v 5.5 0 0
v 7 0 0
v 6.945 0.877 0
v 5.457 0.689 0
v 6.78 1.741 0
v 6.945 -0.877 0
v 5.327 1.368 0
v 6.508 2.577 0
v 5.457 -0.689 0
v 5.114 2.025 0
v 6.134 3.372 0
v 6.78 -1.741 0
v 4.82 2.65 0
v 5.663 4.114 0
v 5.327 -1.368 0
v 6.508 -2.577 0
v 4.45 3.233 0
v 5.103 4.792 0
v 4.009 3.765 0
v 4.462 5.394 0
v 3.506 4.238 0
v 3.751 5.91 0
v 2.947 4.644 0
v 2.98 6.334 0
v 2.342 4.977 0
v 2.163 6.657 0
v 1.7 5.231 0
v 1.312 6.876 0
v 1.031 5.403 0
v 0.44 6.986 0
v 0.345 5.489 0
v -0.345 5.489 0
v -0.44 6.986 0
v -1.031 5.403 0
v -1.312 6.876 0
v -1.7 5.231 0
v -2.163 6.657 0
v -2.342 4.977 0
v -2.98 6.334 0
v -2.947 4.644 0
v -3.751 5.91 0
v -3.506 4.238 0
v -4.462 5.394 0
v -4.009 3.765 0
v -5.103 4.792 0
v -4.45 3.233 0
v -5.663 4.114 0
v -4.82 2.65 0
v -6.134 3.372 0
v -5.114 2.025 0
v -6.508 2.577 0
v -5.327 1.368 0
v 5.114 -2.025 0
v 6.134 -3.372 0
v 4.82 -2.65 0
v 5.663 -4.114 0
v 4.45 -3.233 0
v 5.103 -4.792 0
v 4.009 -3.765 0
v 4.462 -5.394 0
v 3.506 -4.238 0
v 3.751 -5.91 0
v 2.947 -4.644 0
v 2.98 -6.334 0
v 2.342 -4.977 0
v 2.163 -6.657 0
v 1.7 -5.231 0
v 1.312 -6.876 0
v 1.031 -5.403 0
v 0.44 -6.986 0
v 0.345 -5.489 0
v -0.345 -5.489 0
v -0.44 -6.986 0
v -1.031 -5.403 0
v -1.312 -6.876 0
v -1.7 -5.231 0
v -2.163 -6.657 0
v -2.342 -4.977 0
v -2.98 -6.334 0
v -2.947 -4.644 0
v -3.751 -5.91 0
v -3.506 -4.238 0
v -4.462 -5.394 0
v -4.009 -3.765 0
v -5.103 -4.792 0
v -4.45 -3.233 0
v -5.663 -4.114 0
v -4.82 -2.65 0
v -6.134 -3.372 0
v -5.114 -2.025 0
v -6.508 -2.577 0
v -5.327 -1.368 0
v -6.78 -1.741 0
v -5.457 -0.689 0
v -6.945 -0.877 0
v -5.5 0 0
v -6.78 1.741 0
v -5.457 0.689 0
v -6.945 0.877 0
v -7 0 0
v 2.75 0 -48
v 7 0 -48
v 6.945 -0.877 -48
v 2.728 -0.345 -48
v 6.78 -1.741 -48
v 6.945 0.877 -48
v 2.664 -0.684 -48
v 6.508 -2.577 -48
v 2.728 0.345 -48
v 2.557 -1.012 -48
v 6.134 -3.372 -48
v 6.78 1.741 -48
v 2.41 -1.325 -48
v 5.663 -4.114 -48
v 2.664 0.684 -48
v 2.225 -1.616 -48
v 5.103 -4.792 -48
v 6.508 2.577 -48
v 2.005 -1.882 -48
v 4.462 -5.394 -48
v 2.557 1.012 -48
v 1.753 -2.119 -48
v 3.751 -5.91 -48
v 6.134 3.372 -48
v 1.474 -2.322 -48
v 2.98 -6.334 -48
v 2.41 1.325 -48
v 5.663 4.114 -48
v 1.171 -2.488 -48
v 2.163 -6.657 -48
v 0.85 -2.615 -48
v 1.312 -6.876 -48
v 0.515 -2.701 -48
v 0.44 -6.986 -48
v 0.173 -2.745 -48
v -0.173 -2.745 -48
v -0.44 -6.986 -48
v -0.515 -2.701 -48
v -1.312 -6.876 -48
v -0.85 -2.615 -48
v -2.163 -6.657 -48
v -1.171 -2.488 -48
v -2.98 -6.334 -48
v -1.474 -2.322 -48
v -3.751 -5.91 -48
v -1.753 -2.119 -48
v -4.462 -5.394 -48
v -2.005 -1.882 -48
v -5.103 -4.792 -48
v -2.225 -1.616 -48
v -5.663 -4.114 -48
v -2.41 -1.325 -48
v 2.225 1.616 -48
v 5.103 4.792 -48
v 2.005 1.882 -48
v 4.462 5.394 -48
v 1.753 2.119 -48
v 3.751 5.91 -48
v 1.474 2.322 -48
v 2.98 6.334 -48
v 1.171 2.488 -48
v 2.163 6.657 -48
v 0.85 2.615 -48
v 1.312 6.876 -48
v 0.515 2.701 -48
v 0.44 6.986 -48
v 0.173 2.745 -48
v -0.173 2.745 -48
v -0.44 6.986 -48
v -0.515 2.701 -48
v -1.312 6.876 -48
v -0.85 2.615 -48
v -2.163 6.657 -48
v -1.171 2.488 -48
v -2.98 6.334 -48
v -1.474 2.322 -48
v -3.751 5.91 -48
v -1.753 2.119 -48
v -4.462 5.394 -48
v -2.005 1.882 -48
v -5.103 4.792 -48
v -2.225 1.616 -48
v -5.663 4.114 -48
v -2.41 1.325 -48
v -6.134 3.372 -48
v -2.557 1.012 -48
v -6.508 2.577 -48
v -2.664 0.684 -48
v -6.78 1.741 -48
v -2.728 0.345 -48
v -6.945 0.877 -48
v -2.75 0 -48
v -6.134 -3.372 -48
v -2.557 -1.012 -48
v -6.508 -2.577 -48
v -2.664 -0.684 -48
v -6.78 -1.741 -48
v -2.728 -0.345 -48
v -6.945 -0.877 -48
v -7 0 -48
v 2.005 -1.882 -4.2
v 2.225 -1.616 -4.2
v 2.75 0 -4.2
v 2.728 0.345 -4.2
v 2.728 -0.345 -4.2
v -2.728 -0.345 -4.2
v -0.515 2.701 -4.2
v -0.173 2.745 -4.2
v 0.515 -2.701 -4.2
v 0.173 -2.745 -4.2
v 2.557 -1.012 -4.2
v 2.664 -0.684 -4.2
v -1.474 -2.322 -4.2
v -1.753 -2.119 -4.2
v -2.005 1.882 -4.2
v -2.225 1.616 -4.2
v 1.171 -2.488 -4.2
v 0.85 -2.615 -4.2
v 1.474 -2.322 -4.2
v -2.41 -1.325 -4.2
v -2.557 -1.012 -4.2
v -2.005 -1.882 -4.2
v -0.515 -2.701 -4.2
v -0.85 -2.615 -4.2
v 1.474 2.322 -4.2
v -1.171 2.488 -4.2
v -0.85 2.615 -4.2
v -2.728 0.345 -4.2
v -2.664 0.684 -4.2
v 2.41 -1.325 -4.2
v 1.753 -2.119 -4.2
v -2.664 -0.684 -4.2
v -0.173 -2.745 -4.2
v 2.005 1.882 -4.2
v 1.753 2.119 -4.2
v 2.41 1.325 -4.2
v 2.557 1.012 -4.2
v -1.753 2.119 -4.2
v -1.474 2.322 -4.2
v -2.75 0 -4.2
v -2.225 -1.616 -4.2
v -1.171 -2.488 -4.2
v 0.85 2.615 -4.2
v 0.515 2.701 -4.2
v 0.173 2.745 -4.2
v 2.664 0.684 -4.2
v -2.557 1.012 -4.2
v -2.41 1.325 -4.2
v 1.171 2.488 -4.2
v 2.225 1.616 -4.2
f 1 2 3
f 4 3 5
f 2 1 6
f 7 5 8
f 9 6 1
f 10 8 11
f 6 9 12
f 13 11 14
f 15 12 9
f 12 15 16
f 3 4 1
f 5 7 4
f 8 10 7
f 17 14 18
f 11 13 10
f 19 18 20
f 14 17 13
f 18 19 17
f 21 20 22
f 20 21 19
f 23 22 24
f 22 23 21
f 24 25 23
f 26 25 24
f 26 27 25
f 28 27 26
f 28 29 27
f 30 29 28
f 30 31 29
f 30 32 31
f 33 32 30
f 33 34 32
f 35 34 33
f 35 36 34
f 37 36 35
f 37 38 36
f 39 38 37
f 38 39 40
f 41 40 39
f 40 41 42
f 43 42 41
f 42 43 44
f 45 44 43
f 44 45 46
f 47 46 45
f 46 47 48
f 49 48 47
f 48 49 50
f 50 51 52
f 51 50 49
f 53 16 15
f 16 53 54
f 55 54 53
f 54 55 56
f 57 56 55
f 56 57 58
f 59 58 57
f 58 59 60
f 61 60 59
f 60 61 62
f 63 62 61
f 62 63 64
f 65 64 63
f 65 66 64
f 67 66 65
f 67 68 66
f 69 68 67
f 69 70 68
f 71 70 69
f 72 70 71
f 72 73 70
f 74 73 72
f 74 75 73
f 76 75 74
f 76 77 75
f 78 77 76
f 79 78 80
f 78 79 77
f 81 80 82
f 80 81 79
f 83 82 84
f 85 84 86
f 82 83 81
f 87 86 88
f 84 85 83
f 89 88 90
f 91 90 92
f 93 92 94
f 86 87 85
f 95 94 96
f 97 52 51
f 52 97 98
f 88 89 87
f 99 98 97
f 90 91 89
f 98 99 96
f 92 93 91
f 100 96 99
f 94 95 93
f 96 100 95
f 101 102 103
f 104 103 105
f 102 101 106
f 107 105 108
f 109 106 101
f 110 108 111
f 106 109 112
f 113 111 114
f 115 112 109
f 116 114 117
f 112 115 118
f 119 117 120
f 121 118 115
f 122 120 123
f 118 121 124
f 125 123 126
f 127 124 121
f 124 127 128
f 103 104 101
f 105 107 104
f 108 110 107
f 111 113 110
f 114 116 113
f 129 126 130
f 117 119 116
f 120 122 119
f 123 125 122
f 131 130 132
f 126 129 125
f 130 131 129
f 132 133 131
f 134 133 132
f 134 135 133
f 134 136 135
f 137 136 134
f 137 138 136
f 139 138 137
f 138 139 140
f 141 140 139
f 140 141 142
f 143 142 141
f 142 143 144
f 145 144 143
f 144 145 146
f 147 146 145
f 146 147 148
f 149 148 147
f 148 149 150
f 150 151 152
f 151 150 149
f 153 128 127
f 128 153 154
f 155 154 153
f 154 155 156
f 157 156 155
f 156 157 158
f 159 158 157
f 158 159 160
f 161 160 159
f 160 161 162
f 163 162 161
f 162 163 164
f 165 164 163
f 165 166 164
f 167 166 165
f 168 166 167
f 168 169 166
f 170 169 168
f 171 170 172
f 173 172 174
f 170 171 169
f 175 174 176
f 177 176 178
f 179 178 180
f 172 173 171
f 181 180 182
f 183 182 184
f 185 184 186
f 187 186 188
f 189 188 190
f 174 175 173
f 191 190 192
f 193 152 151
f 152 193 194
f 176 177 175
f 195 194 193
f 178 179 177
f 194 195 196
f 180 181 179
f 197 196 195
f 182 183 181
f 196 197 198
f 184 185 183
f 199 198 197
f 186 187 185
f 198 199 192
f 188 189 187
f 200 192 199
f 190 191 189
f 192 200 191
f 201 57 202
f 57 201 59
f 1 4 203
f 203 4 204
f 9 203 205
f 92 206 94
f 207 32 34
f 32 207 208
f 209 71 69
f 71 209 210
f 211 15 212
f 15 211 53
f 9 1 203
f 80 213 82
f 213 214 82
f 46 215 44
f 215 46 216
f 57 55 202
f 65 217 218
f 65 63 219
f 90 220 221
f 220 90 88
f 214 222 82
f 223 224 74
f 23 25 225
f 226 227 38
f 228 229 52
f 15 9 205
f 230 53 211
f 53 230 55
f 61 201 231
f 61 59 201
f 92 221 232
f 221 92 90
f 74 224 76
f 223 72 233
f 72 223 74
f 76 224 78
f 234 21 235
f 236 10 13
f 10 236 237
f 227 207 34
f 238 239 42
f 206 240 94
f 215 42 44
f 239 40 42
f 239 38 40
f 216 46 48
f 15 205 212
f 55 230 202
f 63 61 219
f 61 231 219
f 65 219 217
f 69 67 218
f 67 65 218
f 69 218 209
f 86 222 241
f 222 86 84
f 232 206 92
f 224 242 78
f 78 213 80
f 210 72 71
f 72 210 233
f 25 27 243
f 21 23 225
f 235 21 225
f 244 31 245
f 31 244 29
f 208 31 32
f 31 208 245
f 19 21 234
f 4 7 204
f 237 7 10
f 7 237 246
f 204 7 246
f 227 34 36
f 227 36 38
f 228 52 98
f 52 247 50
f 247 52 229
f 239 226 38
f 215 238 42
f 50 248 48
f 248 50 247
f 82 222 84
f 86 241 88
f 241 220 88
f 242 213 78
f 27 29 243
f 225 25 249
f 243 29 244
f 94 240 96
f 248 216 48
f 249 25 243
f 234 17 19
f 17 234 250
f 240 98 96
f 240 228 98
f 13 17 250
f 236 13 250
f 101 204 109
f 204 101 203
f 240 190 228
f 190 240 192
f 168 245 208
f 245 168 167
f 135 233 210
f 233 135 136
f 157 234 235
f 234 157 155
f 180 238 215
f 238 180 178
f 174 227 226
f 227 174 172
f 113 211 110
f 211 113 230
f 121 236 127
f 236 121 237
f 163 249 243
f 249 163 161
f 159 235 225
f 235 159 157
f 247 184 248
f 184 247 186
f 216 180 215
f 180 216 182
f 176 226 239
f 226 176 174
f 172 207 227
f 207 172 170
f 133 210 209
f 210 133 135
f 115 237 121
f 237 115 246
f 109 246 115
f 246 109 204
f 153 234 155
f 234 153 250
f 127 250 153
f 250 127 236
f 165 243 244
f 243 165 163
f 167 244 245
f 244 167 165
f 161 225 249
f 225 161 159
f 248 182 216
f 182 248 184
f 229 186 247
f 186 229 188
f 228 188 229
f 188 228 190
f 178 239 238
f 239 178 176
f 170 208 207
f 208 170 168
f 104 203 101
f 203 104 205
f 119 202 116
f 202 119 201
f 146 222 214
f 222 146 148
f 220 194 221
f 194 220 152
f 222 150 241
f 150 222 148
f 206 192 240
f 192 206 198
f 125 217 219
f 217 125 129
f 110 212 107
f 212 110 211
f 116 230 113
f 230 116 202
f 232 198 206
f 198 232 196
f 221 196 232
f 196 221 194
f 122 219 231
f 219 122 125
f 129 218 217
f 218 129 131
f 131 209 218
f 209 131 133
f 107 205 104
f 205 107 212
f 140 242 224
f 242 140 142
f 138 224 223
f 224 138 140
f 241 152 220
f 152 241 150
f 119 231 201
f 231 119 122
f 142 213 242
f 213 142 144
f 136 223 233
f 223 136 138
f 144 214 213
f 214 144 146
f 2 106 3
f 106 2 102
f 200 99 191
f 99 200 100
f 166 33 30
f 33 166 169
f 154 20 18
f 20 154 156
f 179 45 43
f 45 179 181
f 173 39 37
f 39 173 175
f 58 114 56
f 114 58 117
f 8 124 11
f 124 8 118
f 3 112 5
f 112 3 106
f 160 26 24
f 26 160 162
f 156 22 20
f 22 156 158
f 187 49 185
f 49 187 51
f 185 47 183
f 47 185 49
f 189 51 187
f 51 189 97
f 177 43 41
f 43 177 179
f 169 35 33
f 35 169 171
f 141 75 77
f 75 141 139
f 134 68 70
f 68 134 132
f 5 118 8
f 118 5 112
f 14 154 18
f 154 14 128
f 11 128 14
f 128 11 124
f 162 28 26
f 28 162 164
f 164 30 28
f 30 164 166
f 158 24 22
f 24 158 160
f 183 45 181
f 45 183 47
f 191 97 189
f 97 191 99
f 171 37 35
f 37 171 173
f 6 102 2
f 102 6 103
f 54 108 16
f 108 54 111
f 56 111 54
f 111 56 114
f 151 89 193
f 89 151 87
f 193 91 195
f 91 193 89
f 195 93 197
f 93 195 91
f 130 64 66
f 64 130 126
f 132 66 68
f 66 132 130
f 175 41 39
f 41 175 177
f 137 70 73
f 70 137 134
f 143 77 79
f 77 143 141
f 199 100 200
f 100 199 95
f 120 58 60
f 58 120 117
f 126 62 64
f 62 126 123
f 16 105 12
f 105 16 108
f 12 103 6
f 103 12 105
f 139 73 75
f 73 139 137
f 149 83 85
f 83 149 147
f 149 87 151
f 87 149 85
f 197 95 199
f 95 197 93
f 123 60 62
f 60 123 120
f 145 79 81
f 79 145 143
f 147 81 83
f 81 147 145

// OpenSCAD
$fn = 50;


difference() {
	union() {
		translate(v = [0, 0, -48.0000000000]) {
			cylinder(h = 48, r = 7.0000000000);
		}
		cylinder(h = 0, r = 17.0000000000);
	}
	union() {
		translate(v = [0, 0, 0]) {
			rotate(a = [0, 0, 0]) {
				difference() {
					union() {
						#translate(v = [0, 0, -48.0000000000]) {
							cylinder(h = 48, r = 2.2500000000);
						}
						#translate(v = [0, 0, -4.2000000000]) {
							cylinder(h = 4.2000000000, r = 7.0000000000, r1 = 2.7500000000, r2 = 5.5000000000);
						}
						#translate(v = [0, 0, -48.0000000000]) {
							cylinder(h = 48, r = 2.7500000000);
						}
						#translate(v = [0, 0, -48.0000000000]) {
							cylinder(h = 48, r = 2.2500000000);
						}
					}
					union();
				}
			}
		}
	}
}
